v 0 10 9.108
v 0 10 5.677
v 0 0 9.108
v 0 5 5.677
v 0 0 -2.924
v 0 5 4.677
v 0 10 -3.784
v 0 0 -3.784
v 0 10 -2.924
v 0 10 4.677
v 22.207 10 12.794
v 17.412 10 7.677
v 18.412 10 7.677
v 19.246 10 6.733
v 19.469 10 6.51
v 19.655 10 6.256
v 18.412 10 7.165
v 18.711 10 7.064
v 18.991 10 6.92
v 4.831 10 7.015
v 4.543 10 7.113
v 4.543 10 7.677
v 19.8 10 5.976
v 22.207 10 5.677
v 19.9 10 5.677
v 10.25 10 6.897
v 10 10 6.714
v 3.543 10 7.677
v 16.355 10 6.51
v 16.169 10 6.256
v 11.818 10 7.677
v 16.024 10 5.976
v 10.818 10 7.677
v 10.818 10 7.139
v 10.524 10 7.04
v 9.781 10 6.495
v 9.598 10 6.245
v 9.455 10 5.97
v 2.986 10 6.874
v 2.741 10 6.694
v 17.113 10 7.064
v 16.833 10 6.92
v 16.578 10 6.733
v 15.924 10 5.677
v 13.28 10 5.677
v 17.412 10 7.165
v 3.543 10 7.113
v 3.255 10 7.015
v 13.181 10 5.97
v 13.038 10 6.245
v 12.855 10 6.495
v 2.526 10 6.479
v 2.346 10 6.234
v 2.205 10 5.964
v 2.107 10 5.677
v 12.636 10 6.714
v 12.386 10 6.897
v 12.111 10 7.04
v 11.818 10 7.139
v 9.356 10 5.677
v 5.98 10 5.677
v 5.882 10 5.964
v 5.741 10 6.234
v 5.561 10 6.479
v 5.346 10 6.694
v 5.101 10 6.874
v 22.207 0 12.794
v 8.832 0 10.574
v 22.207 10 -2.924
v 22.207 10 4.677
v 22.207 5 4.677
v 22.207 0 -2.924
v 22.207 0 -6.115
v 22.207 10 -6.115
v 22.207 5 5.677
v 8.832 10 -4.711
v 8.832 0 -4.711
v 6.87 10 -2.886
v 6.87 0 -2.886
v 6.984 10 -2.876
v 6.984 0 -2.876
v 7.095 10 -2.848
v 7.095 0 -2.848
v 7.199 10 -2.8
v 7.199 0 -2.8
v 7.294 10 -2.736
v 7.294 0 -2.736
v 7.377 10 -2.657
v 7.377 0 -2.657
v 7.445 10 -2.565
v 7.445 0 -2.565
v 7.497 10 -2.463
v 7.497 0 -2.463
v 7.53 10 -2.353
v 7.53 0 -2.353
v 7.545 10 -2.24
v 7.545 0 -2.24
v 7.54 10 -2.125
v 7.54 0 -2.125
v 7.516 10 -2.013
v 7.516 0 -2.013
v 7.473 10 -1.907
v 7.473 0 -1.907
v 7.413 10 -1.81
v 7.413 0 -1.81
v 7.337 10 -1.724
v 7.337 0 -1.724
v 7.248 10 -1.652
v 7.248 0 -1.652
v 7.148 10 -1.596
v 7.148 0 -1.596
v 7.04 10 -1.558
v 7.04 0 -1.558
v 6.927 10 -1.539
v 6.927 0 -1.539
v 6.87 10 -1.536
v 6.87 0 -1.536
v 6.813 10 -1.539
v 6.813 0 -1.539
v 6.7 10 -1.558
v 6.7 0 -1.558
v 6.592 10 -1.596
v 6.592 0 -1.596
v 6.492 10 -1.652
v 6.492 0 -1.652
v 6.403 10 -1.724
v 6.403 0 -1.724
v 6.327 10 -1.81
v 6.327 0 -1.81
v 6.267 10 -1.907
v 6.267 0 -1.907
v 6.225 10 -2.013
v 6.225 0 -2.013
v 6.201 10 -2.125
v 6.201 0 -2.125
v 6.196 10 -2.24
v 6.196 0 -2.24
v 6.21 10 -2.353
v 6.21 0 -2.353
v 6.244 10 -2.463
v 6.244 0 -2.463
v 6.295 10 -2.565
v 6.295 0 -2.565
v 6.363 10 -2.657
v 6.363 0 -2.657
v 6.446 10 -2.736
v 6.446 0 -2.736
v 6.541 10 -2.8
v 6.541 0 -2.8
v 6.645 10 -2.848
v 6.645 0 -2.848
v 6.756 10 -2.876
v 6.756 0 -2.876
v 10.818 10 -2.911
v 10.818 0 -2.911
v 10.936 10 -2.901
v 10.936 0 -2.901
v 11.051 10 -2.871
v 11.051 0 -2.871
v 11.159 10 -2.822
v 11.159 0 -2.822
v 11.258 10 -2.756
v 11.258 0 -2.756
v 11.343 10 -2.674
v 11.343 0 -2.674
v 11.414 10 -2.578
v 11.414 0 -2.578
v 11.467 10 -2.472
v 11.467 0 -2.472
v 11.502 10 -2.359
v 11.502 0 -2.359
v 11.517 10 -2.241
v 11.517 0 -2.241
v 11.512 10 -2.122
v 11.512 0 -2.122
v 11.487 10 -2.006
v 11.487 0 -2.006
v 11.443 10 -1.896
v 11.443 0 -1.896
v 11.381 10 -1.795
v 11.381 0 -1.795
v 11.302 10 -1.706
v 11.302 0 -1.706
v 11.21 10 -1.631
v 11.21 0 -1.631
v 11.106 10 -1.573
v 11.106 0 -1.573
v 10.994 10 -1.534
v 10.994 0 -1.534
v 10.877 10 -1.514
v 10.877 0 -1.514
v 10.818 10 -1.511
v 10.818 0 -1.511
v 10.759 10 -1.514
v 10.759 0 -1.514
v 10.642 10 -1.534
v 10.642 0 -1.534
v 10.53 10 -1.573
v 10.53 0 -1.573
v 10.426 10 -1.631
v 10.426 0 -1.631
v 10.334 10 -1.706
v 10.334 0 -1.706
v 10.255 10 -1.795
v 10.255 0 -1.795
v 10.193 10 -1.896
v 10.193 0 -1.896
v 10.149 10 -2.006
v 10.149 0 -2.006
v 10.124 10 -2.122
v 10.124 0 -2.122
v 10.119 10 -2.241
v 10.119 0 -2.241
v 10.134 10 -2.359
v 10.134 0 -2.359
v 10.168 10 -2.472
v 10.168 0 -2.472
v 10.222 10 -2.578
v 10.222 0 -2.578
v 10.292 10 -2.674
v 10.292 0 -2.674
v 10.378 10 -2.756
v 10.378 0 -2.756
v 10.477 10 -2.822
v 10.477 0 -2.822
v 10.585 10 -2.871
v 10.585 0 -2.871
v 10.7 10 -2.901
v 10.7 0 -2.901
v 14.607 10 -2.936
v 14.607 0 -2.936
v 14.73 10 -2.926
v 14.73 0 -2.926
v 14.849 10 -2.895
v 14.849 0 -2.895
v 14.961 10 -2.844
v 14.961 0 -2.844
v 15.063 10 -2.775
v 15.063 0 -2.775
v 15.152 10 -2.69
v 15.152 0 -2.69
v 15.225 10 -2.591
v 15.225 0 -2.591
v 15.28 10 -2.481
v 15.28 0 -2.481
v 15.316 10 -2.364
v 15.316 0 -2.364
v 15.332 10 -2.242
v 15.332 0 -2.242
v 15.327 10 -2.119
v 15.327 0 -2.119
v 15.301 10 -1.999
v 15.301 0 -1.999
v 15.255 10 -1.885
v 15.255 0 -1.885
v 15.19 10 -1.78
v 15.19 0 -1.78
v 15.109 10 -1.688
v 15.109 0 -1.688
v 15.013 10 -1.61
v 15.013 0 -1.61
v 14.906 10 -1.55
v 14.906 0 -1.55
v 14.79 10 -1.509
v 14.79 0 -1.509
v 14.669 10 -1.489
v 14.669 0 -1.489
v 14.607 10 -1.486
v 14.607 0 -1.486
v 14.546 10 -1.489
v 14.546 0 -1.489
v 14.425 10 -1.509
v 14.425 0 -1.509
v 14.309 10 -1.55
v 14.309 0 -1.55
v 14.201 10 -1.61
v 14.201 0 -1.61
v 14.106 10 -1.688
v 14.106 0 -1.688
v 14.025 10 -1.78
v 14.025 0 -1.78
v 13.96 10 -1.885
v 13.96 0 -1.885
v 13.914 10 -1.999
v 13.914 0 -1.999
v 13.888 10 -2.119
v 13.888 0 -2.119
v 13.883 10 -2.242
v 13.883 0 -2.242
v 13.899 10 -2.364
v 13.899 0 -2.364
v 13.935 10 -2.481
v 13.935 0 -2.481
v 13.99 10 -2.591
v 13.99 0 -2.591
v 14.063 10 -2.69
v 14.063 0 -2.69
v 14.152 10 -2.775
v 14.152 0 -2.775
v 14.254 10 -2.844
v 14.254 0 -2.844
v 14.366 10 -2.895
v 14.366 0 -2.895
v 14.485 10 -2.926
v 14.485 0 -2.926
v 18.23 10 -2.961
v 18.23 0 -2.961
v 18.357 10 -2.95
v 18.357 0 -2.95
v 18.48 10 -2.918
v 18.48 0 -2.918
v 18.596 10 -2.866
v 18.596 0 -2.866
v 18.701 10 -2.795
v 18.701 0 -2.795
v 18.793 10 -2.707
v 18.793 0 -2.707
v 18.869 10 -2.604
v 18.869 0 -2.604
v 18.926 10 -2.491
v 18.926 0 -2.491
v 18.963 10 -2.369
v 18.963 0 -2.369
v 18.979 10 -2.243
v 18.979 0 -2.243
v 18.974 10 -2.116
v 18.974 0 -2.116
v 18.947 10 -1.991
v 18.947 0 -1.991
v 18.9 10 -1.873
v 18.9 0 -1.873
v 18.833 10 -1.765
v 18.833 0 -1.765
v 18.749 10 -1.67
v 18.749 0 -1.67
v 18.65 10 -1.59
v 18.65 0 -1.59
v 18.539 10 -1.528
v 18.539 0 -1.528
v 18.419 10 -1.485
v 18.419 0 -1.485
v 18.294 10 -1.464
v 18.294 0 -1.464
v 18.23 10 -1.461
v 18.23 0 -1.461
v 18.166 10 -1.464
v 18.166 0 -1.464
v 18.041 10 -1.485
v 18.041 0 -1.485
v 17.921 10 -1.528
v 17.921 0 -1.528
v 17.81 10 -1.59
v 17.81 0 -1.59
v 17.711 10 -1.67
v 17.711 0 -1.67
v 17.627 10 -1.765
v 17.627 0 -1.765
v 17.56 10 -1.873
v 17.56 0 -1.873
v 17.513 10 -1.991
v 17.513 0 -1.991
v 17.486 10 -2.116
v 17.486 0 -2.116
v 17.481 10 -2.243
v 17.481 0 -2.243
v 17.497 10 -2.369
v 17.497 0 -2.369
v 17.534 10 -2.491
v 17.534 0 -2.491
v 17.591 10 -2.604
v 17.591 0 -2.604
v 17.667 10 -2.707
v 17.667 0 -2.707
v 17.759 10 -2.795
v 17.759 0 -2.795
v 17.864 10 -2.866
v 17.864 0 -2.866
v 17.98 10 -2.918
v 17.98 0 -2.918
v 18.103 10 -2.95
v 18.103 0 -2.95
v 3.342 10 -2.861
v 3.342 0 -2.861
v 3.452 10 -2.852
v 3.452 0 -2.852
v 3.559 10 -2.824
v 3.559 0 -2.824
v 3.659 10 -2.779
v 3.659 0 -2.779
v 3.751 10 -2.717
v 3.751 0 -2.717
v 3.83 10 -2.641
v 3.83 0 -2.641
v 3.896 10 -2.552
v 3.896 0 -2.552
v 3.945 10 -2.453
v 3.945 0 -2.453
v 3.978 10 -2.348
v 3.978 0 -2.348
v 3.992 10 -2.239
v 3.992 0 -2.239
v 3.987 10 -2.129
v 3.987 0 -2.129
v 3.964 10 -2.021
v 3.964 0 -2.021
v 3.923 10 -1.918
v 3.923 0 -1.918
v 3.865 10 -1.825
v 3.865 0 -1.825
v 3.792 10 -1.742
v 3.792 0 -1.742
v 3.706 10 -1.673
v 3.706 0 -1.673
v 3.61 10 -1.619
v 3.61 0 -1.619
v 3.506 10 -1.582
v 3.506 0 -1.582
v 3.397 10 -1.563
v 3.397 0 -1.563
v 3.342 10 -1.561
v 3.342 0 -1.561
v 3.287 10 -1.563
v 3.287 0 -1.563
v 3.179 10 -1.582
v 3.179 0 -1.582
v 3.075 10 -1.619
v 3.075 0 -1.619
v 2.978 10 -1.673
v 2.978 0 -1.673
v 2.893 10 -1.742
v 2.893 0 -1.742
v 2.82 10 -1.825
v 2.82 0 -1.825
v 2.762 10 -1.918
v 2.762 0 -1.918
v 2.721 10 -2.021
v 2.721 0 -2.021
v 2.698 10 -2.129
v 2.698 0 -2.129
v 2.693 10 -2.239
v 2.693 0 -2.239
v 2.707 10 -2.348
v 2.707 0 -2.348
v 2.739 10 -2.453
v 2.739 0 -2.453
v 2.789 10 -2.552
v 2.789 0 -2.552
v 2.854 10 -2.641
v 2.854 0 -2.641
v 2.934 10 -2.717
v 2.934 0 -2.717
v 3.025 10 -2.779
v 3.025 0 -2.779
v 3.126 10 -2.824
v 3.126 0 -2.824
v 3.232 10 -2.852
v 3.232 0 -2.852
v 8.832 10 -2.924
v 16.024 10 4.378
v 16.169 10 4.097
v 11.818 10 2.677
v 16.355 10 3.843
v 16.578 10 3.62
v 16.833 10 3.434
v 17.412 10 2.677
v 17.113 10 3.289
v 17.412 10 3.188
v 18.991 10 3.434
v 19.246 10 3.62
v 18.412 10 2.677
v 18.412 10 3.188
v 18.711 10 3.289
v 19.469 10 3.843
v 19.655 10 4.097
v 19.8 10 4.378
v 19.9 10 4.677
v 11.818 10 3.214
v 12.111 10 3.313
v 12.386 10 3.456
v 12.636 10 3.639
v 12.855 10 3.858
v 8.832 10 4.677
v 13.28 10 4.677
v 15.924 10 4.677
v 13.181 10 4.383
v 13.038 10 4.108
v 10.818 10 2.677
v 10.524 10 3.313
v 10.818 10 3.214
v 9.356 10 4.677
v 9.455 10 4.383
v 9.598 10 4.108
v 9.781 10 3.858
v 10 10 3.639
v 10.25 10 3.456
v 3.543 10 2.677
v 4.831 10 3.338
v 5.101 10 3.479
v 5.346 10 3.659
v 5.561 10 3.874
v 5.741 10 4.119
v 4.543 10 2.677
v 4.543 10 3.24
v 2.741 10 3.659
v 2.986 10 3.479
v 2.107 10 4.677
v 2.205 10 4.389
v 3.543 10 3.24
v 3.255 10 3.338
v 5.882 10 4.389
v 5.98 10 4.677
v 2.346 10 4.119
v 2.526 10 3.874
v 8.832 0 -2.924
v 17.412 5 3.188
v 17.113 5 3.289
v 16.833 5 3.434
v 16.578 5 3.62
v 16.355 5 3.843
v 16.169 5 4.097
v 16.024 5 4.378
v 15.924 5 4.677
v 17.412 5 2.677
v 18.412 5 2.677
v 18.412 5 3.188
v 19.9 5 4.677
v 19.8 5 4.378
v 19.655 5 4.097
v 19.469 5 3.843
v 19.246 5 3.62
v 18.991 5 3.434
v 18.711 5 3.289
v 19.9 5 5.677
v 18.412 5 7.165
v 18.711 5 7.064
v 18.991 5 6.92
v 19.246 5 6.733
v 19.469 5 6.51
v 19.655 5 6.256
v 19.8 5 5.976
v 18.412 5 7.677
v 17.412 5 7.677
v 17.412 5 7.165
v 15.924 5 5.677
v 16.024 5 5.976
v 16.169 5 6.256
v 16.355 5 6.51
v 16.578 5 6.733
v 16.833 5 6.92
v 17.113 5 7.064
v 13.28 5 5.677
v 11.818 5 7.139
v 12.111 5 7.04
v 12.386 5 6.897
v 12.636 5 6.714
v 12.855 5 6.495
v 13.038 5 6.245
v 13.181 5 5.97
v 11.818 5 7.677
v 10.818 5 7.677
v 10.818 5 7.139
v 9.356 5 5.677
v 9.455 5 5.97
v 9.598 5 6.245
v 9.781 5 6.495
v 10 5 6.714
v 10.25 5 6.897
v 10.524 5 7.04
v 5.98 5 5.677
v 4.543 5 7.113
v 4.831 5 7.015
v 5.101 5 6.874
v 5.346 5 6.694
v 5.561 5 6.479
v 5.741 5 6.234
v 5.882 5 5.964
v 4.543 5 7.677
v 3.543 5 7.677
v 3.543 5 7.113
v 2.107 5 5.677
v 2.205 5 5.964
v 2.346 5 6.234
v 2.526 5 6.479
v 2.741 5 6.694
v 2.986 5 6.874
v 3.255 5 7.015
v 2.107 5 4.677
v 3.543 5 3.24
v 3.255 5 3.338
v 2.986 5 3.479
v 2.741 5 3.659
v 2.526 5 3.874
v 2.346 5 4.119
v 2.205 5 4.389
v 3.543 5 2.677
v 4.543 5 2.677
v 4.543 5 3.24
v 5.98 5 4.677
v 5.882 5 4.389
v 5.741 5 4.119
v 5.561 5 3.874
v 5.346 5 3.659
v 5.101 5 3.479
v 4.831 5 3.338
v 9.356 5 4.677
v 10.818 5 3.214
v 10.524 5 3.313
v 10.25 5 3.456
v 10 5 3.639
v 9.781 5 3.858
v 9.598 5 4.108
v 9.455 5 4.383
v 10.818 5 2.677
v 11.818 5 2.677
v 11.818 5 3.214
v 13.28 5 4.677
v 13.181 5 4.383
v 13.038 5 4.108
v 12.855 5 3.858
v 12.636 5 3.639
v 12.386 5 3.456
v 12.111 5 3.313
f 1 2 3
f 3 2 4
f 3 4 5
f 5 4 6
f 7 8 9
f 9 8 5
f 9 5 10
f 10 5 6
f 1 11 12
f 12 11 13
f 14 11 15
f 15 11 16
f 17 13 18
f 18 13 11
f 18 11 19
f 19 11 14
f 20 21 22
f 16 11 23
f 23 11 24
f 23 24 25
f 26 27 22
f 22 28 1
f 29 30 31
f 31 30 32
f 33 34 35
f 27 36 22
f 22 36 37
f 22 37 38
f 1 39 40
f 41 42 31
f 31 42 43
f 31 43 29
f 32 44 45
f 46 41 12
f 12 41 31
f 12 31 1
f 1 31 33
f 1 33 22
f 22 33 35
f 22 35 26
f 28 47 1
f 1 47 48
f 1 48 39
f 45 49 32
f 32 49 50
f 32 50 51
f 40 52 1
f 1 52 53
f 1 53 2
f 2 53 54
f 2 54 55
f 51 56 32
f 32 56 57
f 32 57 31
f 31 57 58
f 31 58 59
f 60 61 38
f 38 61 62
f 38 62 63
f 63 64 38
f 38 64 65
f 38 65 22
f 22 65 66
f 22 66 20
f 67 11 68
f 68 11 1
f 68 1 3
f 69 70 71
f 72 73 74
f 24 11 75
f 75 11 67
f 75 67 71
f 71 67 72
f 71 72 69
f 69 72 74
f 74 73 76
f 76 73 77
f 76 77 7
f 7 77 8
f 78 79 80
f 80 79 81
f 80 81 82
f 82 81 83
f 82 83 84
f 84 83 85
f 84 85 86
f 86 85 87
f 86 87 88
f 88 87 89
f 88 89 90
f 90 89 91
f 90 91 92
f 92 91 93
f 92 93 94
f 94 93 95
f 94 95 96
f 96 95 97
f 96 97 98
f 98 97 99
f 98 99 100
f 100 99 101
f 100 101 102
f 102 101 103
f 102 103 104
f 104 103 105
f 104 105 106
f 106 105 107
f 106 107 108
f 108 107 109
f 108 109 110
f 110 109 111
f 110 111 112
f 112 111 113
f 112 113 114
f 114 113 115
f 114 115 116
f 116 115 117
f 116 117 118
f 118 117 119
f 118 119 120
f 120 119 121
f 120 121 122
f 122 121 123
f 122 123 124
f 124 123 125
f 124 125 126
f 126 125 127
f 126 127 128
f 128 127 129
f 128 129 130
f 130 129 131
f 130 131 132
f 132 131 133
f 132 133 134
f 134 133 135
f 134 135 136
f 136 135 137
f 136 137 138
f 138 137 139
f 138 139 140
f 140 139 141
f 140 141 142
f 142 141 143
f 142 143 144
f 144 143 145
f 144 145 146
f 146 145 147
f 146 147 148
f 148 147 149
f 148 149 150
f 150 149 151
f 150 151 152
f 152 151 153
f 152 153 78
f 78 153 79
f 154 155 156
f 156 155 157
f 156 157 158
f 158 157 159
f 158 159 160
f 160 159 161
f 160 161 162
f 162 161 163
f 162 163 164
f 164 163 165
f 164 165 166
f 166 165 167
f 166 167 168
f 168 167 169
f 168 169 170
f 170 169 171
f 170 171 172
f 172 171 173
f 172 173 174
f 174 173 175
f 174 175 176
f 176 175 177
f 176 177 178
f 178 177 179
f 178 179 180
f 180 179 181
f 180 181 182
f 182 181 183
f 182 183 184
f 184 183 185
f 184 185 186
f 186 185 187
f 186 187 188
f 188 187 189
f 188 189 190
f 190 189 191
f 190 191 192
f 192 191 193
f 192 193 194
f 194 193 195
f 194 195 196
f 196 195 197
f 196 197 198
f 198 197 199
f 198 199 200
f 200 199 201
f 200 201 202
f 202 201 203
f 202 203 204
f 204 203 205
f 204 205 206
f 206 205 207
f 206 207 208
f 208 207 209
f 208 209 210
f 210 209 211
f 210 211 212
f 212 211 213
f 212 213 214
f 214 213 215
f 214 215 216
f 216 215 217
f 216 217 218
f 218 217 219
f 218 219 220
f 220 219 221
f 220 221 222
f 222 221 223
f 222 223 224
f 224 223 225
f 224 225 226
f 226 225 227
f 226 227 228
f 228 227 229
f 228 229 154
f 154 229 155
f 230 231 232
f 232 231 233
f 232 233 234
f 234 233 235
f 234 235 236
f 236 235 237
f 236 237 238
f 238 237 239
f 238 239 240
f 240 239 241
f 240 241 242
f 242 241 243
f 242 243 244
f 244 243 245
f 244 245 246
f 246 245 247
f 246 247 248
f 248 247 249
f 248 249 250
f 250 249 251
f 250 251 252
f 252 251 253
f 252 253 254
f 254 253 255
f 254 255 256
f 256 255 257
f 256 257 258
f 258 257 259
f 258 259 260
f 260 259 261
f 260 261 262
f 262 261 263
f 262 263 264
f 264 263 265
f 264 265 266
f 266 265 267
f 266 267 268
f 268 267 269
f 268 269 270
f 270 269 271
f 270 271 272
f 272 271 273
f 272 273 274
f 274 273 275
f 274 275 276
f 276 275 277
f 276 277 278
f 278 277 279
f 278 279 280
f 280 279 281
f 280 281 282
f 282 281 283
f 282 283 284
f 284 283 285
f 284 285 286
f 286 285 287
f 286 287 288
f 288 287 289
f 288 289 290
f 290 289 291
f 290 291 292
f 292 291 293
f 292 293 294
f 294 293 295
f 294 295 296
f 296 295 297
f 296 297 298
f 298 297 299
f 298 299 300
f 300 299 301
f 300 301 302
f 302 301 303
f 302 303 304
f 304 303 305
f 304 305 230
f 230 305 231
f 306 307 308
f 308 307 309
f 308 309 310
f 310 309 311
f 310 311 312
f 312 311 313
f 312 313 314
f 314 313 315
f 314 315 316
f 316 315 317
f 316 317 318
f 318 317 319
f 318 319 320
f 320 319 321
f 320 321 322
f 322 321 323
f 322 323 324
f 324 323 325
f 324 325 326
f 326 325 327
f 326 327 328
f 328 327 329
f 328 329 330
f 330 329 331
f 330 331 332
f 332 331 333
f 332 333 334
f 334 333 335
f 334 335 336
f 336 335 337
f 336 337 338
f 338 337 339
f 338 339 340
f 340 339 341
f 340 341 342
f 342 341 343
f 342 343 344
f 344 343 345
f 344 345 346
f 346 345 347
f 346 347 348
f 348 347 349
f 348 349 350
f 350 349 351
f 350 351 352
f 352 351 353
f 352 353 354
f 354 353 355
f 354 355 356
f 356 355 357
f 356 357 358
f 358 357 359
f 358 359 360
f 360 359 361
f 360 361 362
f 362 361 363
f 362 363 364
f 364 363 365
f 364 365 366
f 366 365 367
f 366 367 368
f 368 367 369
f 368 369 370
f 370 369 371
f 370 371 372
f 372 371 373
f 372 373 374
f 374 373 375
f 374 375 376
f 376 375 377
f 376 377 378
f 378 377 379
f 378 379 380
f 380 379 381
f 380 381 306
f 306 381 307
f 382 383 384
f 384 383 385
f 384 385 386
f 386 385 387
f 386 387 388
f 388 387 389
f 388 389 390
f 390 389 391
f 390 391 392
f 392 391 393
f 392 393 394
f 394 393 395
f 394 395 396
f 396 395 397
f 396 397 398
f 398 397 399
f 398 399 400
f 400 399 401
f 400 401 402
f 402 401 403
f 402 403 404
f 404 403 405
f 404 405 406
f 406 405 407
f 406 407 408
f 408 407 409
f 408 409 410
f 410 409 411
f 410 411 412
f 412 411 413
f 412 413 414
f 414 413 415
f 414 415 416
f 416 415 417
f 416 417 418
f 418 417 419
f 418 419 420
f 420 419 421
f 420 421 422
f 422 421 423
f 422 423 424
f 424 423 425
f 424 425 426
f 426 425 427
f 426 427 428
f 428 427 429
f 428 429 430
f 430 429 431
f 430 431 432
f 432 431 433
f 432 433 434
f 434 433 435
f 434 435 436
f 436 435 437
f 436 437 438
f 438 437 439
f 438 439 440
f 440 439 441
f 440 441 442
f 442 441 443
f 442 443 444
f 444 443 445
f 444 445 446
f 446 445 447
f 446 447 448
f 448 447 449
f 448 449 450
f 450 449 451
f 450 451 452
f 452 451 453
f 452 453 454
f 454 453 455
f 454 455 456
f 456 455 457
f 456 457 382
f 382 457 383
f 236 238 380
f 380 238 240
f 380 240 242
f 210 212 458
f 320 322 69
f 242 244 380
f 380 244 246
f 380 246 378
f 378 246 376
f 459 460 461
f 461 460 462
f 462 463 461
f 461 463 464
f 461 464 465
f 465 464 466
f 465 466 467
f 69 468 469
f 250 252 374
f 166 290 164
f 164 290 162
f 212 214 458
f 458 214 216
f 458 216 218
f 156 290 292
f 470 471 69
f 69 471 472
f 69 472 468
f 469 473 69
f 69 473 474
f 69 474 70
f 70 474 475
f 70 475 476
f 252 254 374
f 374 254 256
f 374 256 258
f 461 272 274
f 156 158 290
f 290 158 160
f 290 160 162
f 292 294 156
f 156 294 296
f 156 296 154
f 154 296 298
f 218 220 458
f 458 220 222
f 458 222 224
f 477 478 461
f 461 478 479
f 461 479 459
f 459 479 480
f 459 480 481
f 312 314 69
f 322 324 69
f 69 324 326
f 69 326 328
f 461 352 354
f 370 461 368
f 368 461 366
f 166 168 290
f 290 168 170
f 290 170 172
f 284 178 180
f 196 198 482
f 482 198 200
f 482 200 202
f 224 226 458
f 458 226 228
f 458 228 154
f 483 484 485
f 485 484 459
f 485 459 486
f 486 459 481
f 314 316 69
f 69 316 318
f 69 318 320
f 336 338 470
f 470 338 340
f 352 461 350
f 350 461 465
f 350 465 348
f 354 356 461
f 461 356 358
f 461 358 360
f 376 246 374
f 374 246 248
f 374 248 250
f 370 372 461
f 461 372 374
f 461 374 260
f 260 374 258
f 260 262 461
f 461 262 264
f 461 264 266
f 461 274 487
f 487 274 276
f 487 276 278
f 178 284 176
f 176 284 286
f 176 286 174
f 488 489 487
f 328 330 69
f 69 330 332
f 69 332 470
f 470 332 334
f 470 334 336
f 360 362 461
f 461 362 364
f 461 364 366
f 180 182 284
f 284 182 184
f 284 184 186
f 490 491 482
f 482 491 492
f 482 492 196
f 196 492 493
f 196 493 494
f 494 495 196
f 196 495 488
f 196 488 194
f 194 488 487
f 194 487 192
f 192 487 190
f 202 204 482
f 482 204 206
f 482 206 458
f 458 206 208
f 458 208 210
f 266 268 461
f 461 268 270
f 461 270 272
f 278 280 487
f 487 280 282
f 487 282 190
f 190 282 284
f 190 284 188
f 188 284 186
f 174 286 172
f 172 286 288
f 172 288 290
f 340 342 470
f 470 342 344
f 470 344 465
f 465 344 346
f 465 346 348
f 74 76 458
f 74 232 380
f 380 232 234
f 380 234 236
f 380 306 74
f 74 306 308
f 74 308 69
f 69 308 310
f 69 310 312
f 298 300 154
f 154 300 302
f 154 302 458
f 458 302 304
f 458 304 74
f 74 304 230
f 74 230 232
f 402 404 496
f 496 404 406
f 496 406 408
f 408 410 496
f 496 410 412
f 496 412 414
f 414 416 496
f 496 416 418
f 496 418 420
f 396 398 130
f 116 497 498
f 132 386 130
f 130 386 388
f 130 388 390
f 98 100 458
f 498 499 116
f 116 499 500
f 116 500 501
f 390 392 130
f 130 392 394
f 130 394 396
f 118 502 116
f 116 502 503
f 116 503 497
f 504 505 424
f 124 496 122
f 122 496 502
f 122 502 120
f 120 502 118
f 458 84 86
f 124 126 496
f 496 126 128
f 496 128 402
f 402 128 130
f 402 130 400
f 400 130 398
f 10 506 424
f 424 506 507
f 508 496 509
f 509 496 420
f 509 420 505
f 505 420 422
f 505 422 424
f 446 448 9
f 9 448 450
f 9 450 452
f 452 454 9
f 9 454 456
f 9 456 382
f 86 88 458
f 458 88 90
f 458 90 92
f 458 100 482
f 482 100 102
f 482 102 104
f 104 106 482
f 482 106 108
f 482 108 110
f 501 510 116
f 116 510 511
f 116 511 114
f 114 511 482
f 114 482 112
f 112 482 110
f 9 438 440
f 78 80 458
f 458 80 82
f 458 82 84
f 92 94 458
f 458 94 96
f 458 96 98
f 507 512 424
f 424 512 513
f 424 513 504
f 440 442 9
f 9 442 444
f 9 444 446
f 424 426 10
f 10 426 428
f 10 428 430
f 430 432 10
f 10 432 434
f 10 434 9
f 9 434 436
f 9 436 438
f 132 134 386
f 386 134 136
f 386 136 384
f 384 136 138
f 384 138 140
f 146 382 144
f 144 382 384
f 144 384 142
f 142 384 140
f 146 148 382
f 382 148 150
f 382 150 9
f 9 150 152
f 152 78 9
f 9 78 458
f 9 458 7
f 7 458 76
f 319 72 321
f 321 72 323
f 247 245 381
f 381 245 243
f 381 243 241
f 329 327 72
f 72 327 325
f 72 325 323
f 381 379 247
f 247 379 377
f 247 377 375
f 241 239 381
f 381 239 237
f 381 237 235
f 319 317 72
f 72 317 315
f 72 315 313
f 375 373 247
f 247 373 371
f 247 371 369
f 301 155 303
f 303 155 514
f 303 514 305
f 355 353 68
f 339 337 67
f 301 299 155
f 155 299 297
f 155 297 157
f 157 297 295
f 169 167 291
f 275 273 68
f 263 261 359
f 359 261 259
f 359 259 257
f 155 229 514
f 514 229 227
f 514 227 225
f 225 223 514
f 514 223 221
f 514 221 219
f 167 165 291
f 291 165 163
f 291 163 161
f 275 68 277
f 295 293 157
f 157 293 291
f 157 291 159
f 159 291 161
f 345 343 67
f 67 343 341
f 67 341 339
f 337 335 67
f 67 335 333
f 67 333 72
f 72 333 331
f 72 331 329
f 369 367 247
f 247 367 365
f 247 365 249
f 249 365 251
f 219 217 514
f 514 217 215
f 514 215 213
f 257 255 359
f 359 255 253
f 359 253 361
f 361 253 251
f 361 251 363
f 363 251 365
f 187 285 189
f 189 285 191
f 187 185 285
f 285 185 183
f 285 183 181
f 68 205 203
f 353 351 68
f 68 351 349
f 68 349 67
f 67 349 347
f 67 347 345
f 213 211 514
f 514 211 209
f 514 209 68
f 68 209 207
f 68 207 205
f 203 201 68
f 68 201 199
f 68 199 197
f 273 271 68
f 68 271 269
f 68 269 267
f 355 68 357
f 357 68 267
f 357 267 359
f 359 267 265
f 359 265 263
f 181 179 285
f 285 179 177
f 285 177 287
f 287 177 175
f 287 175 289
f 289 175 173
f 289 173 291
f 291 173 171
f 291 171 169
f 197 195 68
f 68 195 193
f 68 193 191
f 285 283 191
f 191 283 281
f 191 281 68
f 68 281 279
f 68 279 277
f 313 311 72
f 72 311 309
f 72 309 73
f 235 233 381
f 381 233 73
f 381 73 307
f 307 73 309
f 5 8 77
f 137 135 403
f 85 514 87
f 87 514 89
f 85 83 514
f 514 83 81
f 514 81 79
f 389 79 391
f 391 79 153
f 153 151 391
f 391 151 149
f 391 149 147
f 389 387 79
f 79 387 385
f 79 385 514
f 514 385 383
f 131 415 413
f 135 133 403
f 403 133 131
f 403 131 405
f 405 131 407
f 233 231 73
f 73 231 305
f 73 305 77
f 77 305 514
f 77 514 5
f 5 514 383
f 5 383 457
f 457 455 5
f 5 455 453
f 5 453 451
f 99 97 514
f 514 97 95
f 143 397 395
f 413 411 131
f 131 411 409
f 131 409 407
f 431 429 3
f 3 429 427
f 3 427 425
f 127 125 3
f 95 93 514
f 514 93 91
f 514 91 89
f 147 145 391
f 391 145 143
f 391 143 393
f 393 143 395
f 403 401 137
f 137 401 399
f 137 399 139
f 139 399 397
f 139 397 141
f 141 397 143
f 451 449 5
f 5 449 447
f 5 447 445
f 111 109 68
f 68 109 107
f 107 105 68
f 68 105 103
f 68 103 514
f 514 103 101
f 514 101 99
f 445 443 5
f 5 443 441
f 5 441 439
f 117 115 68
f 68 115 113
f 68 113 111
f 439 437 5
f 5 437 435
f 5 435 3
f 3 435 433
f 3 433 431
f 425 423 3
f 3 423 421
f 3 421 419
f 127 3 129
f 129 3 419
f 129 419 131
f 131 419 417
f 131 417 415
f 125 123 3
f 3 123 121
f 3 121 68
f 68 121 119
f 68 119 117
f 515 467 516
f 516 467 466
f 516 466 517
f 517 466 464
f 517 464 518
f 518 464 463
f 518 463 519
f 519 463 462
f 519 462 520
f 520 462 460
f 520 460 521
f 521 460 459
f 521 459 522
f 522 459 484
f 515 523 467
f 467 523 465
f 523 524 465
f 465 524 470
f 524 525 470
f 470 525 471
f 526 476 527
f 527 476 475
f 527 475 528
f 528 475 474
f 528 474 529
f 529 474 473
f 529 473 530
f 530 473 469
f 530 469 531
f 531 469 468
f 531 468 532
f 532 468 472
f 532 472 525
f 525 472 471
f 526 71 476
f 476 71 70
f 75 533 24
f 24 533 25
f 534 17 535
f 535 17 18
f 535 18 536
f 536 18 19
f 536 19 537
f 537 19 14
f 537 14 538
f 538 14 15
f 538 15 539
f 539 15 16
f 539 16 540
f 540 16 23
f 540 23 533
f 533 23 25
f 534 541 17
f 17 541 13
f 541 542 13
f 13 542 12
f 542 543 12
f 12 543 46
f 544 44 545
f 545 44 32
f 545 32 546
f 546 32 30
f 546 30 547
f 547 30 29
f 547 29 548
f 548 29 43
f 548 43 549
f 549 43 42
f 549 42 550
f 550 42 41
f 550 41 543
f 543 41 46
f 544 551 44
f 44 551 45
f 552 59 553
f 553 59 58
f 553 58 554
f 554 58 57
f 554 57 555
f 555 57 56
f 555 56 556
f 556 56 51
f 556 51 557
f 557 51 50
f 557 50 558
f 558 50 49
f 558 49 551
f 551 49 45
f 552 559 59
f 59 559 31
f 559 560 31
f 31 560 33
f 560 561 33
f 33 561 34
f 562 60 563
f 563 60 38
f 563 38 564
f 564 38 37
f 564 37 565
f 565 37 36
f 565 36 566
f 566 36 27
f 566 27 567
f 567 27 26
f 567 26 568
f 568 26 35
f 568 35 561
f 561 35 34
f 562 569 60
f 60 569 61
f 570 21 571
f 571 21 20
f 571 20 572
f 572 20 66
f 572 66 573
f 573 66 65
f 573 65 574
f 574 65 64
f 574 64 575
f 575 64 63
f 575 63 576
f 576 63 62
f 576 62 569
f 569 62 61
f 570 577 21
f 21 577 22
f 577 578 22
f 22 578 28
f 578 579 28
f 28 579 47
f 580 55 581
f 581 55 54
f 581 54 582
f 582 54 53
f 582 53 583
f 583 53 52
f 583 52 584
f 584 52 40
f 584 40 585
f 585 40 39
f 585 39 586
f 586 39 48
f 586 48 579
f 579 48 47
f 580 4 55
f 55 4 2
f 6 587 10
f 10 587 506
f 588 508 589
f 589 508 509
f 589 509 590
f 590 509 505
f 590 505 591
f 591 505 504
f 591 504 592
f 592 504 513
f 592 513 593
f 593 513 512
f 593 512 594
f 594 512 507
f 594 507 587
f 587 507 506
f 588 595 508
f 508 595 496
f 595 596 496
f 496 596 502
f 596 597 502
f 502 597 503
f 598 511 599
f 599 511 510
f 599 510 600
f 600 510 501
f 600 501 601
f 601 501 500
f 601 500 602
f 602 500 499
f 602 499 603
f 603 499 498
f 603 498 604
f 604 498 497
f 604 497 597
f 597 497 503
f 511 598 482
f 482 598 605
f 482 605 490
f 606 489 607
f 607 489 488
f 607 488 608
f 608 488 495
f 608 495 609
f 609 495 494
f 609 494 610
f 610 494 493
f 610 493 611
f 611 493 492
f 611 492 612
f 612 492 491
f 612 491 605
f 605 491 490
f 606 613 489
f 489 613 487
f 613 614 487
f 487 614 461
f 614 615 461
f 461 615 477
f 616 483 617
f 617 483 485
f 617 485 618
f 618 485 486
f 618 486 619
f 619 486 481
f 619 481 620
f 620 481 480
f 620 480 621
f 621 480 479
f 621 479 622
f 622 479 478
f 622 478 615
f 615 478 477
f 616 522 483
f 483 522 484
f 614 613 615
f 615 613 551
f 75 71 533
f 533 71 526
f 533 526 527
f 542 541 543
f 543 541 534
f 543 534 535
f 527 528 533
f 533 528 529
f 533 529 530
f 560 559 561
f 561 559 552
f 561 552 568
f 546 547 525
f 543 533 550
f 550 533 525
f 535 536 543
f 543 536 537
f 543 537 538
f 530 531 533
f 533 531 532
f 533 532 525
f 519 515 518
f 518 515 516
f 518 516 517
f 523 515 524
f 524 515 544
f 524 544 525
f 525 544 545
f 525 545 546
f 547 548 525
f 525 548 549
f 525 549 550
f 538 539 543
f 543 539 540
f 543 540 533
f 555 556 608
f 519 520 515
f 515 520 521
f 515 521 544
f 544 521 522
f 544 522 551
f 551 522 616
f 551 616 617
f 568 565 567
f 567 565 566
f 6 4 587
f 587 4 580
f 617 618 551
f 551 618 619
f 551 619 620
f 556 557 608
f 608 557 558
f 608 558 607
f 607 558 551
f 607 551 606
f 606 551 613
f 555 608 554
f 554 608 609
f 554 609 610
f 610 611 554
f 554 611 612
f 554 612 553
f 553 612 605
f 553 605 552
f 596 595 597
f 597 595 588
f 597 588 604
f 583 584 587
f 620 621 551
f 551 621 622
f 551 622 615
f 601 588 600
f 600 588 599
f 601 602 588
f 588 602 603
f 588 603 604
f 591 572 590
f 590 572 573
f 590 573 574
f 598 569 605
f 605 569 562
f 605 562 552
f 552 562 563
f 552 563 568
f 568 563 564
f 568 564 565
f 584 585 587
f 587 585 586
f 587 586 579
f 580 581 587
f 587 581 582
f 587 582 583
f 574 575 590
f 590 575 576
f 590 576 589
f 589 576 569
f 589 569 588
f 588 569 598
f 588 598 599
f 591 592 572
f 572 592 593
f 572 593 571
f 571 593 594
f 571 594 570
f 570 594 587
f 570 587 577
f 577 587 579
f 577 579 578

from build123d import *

# Parameters (mm, degrees)
SKETCH1_R           = 0.65
SKETCH1_R_2         = 0.675
SKETCH1_R_3         = 0.7
SKETCH1_R_4         = 0.725
SKETCH1_R_5         = 0.75
SKETCH1_W           = 1
SKETCH1_H           = 1
BOSS_EXTRUDE1_DEPTH = 10
CUT_EXTRUDE1_START  = 10
SKETCH1_4_W         = 1
SKETCH1_4_H         = 1
CUT_EXTRUDE1_DEPTH  = 5


with BuildPart() as part:
    # Sketch1 → Boss-Extrude1 (new body)
    with BuildSketch(Plane(origin=(0, 0, 0), x_dir=(1, 0, 0), z_dir=(0, 1, 0))):
        with BuildLine():
            Line((22.206609956, -4.676577902), (22.206609956, -1.693083106))
            Line((22.206609956, -1.693083106), (22.206609956, 6.115263516))
            Line((22.206609956, 6.115263516), (0, 3.783645885))
            Line((0, 3.783645885), (0, 1.993800458))
            Line((0, 1.993800458), (0, -4.676577902))
            Line((0, -4.676577902), (2.106823129, -4.676577902))
            ThreePointArc((2.106823129, -4.676577902), (2.62910124, -3.762364339), (3.543314802, -3.240086229))
            Line((3.543314802, -3.240086229), (3.543314802, -2.676577902))
            Line((3.543314802, -2.676577902), (4.543314802, -2.676577902))
            Line((4.543314802, -2.676577902), (4.543314802, -3.240086229))
            ThreePointArc((4.543314802, -3.240086229), (5.457528364, -3.762364339), (5.979806475, -4.676577902))
            Line((5.979806475, -4.676577902), (9.355611155, -4.676577902))
            ThreePointArc((9.355611155, -4.676577902), (9.886020869, -3.74468667), (10.8179121, -3.214276957))
            Line((10.8179121, -3.214276957), (10.8179121, -2.676577902))
            Line((10.8179121, -2.676577902), (11.8179121, -2.676577902))
            Line((11.8179121, -2.676577902), (11.8179121, -3.214276957))
            ThreePointArc((11.8179121, -3.214276957), (12.749803332, -3.74468667), (13.280213046, -4.676577902))
            Line((13.280213046, -4.676577902), (15.924027608, -4.676577902))
            ThreePointArc((15.924027608, -4.676577902), (16.462548242, -3.727009), (17.412117144, -3.188488367))
            Line((17.412117144, -3.188488367), (17.412117144, -2.676577902))
            Line((17.412117144, -2.676577902), (18.412117144, -2.676577902))
            Line((18.412117144, -2.676577902), (18.412117144, -3.188488367))
            ThreePointArc((18.412117144, -3.188488367), (19.361686045, -3.727009), (19.900206679, -4.676577902))
            Line((19.900206679, -4.676577902), (22.206609956, -4.676577902))
        make_face()
        with Locations((3.342327151, 2.211090205)):
            Circle(SKETCH1_R, mode=Mode.SUBTRACT)
        with Locations((6.870185956, 2.211090205)):
            Circle(SKETCH1_R_2, mode=Mode.SUBTRACT)
        with Locations((10.8179121, 2.211090205)):
            Circle(SKETCH1_R_3, mode=Mode.SUBTRACT)
        with Locations((14.607435977, 2.211090205)):
            Circle(SKETCH1_R_4, mode=Mode.SUBTRACT)
        with Locations((18.23001071, 2.211090205)):
            Circle(SKETCH1_R_5, mode=Mode.SUBTRACT)
        with BuildLine():
            Line((22.206609956, -12.794492927), (22.206609956, -5.676577902))
            Line((22.206609956, -5.676577902), (19.900206679, -5.676577902))
            ThreePointArc((19.900206679, -5.676577902), (19.361686045, -6.626146803), (18.412117144, -7.164667437))
            Line((18.412117144, -7.164667437), (18.412117144, -7.676577902))
            Line((18.412117144, -7.676577902), (17.412117144, -7.676577902))
            Line((17.412117144, -7.676577902), (17.412117144, -7.164667437))
            ThreePointArc((17.412117144, -7.164667437), (16.462548242, -6.626146803), (15.924027608, -5.676577902))
            Line((15.924027608, -5.676577902), (13.280213046, -5.676577902))
            ThreePointArc((13.280213046, -5.676577902), (12.749803332, -6.608469134), (11.8179121, -7.138878847))
            Line((11.8179121, -7.138878847), (11.8179121, -7.676577902))
            Line((11.8179121, -7.676577902), (10.8179121, -7.676577902))
            Line((10.8179121, -7.676577902), (10.8179121, -7.138878847))
            ThreePointArc((10.8179121, -7.138878847), (9.886020869, -6.608469134), (9.355611155, -5.676577902))
            Line((9.355611155, -5.676577902), (5.979806475, -5.676577902))
            ThreePointArc((5.979806475, -5.676577902), (5.457528364, -6.590791464), (4.543314802, -7.113069575))
            Line((4.543314802, -7.113069575), (4.543314802, -7.676577902))
            Line((4.543314802, -7.676577902), (3.543314802, -7.676577902))
            Line((3.543314802, -7.676577902), (3.543314802, -7.113069575))
            ThreePointArc((3.543314802, -7.113069575), (2.62910124, -6.590791464), (2.106823129, -5.676577902))
            Line((2.106823129, -5.676577902), (0, -5.676577902))
            Line((0, -5.676577902), (0, -9.107609363))
            Line((0, -9.107609363), (22.206609956, -12.794492927))
        make_face()
        with BuildLine():
            Line((22.206609956, -5.676577902), (22.206609956, -4.676577902))
            Line((22.206609956, -4.676577902), (19.900206679, -4.676577902))
            ThreePointArc((19.900206679, -4.676577902), (19.946580654, -4.924668739), (19.962117144, -5.176577902))
            ThreePointArc((19.962117144, -5.176577902), (19.946580654, -5.428487065), (19.900206679, -5.676577902))
            Line((19.900206679, -5.676577902), (22.206609956, -5.676577902))
        make_face()
        with BuildLine():
            ThreePointArc((19.962117144, -5.176577902), (19.946580654, -4.924668739), (19.900206679, -4.676577902))
            Line((19.900206679, -4.676577902), (18.412117144, -4.676577902))
            Line((18.412117144, -4.676577902), (18.412117144, -5.676577902))
            Line((18.412117144, -5.676577902), (19.900206679, -5.676577902))
            ThreePointArc((19.900206679, -5.676577902), (19.946580654, -5.428487065), (19.962117144, -5.176577902))
        make_face()
        with BuildLine():
            Line((18.412117144, -4.676577902), (19.900206679, -4.676577902))
            ThreePointArc((19.900206679, -4.676577902), (19.361686045, -3.727009), (18.412117144, -3.188488367))
            Line((18.412117144, -3.188488367), (18.412117144, -4.676577902))
        make_face()
        with BuildLine():
            ThreePointArc((17.412117144, -3.188488367), (17.912117144, -3.126577902), (18.412117144, -3.188488367))
            Line((18.412117144, -3.188488367), (18.412117144, -2.676577902))
            Line((18.412117144, -2.676577902), (17.412117144, -2.676577902))
            Line((17.412117144, -2.676577902), (17.412117144, -3.188488367))
        make_face()
        with BuildLine():
            Line((17.412117144, -4.676577902), (18.412117144, -4.676577902))
            Line((18.412117144, -4.676577902), (18.412117144, -3.188488367))
            ThreePointArc((18.412117144, -3.188488367), (17.912117144, -3.126577902), (17.412117144, -3.188488367))
            Line((17.412117144, -3.188488367), (17.412117144, -4.676577902))
        make_face()
        with BuildLine():
            ThreePointArc((18.412117144, -7.164667437), (19.361686045, -6.626146803), (19.900206679, -5.676577902))
            Line((19.900206679, -5.676577902), (18.412117144, -5.676577902))
            Line((18.412117144, -5.676577902), (18.412117144, -7.164667437))
        make_face()
        with BuildLine():
            Line((18.412117144, -7.164667437), (18.412117144, -5.676577902))
            Line((18.412117144, -5.676577902), (17.412117144, -5.676577902))
            Line((17.412117144, -5.676577902), (17.412117144, -7.164667437))
            ThreePointArc((17.412117144, -7.164667437), (17.912117144, -7.226577902), (18.412117144, -7.164667437))
        make_face()
        with BuildLine():
            Line((18.412117144, -7.676577902), (18.412117144, -7.164667437))
            ThreePointArc((18.412117144, -7.164667437), (17.912117144, -7.226577902), (17.412117144, -7.164667437))
            Line((17.412117144, -7.164667437), (17.412117144, -7.676577902))
            Line((17.412117144, -7.676577902), (18.412117144, -7.676577902))
        make_face()
        with Locations((17.912117144, -5.176577902)):
            Rectangle(SKETCH1_W, SKETCH1_H)
        with BuildLine():
            Line((17.412117144, -5.676577902), (17.412117144, -4.676577902))
            Line((17.412117144, -4.676577902), (15.924027608, -4.676577902))
            ThreePointArc((15.924027608, -4.676577902), (15.862117144, -5.176577902), (15.924027608, -5.676577902))
            Line((15.924027608, -5.676577902), (17.412117144, -5.676577902))
        make_face()
        with BuildLine():
            Line((15.924027608, -4.676577902), (17.412117144, -4.676577902))
            Line((17.412117144, -4.676577902), (17.412117144, -3.188488367))
            ThreePointArc((17.412117144, -3.188488367), (16.462548242, -3.727009), (15.924027608, -4.676577902))
        make_face()
        with BuildLine():
            Line((17.412117144, -7.164667437), (17.412117144, -5.676577902))
            Line((17.412117144, -5.676577902), (15.924027608, -5.676577902))
            ThreePointArc((15.924027608, -5.676577902), (16.462548242, -6.626146803), (17.412117144, -7.164667437))
        make_face()
        with BuildLine():
            ThreePointArc((15.924027608, -5.676577902), (15.862117144, -5.176577902), (15.924027608, -4.676577902))
            Line((15.924027608, -4.676577902), (13.280213046, -4.676577902))
            ThreePointArc((13.280213046, -4.676577902), (13.327176196, -4.924619983), (13.3429121, -5.176577902))
            ThreePointArc((13.3429121, -5.176577902), (13.327176196, -5.428535821), (13.280213046, -5.676577902))
            Line((13.280213046, -5.676577902), (15.924027608, -5.676577902))
        make_face()
        with BuildLine():
            Line((11.8179121, -4.676577902), (13.280213046, -4.676577902))
            ThreePointArc((13.280213046, -4.676577902), (12.749803332, -3.74468667), (11.8179121, -3.214276957))
            Line((11.8179121, -3.214276957), (11.8179121, -4.676577902))
        make_face()
        with BuildLine():
            ThreePointArc((10.8179121, -3.214276957), (11.3179121, -3.151577902), (11.8179121, -3.214276957))
            Line((11.8179121, -3.214276957), (11.8179121, -2.676577902))
            Line((11.8179121, -2.676577902), (10.8179121, -2.676577902))
            Line((10.8179121, -2.676577902), (10.8179121, -3.214276957))
        make_face()
        with BuildLine():
            Line((10.8179121, -4.676577902), (11.8179121, -4.676577902))
            Line((11.8179121, -4.676577902), (11.8179121, -3.214276957))
            ThreePointArc((11.8179121, -3.214276957), (11.3179121, -3.151577902), (10.8179121, -3.214276957))
            Line((10.8179121, -3.214276957), (10.8179121, -4.676577902))
        make_face()
        with BuildLine():
            ThreePointArc((13.3429121, -5.176577902), (13.327176196, -4.924619983), (13.280213046, -4.676577902))
            Line((13.280213046, -4.676577902), (11.8179121, -4.676577902))
            Line((11.8179121, -4.676577902), (11.8179121, -5.676577902))
            Line((11.8179121, -5.676577902), (13.280213046, -5.676577902))
            ThreePointArc((13.280213046, -5.676577902), (13.327176196, -5.428535821), (13.3429121, -5.176577902))
        make_face()
        with BuildLine():
            ThreePointArc((11.8179121, -7.138878847), (12.749803332, -6.608469134), (13.280213046, -5.676577902))
            Line((13.280213046, -5.676577902), (11.8179121, -5.676577902))
            Line((11.8179121, -5.676577902), (11.8179121, -7.138878847))
        make_face()
        with BuildLine():
            Line((11.8179121, -7.138878847), (11.8179121, -5.676577902))
            Line((11.8179121, -5.676577902), (10.8179121, -5.676577902))
            Line((10.8179121, -5.676577902), (10.8179121, -7.138878847))
            ThreePointArc((10.8179121, -7.138878847), (11.3179121, -7.201577902), (11.8179121, -7.138878847))
        make_face()
        with BuildLine():
            Line((11.8179121, -7.676577902), (11.8179121, -7.138878847))
            ThreePointArc((11.8179121, -7.138878847), (11.3179121, -7.201577902), (10.8179121, -7.138878847))
            Line((10.8179121, -7.138878847), (10.8179121, -7.676577902))
            Line((10.8179121, -7.676577902), (11.8179121, -7.676577902))
        make_face()
        with Locations((11.3179121, -5.176577902)):
            Rectangle(SKETCH1_W, SKETCH1_H)
        with BuildLine():
            Line((10.8179121, -5.676577902), (10.8179121, -4.676577902))
            Line((10.8179121, -4.676577902), (9.355611155, -4.676577902))
            ThreePointArc((9.355611155, -4.676577902), (9.2929121, -5.176577902), (9.355611155, -5.676577902))
            Line((9.355611155, -5.676577902), (10.8179121, -5.676577902))
        make_face()
        with BuildLine():
            Line((9.355611155, -4.676577902), (10.8179121, -4.676577902))
            Line((10.8179121, -4.676577902), (10.8179121, -3.214276957))
            ThreePointArc((10.8179121, -3.214276957), (9.886020869, -3.74468667), (9.355611155, -4.676577902))
        make_face()
        with BuildLine():
            Line((10.8179121, -7.138878847), (10.8179121, -5.676577902))
            Line((10.8179121, -5.676577902), (9.355611155, -5.676577902))
            ThreePointArc((9.355611155, -5.676577902), (9.886020869, -6.608469134), (10.8179121, -7.138878847))
        make_face()
        with BuildLine():
            Line((9.355611155, -4.676577902), (5.979806475, -4.676577902))
            ThreePointArc((5.979806475, -4.676577902), (6.027374194, -4.924569317), (6.043314802, -5.176577902))
            ThreePointArc((6.043314802, -5.176577902), (6.027374194, -5.428586487), (5.979806475, -5.676577902))
            Line((5.979806475, -5.676577902), (9.355611155, -5.676577902))
            ThreePointArc((9.355611155, -5.676577902), (9.2929121, -5.176577902), (9.355611155, -4.676577902))
        make_face()
        with BuildLine():
            Line((4.543314802, -3.240086229), (4.543314802, -4.676577902))
            Line((4.543314802, -4.676577902), (5.979806475, -4.676577902))
            ThreePointArc((5.979806475, -4.676577902), (5.457528364, -3.762364339), (4.543314802, -3.240086229))
        make_face()
        with BuildLine():
            Line((5.979806475, -4.676577902), (4.543314802, -4.676577902))
            Line((4.543314802, -4.676577902), (4.543314802, -5.676577902))
            Line((4.543314802, -5.676577902), (5.979806475, -5.676577902))
            ThreePointArc((5.979806475, -5.676577902), (6.027374194, -5.428586487), (6.043314802, -5.176577902))
            ThreePointArc((6.043314802, -5.176577902), (6.027374194, -4.924569317), (5.979806475, -4.676577902))
        make_face()
        with BuildLine():
            Line((5.979806475, -5.676577902), (4.543314802, -5.676577902))
            Line((4.543314802, -5.676577902), (4.543314802, -7.113069575))
            ThreePointArc((4.543314802, -7.113069575), (5.457528364, -6.590791464), (5.979806475, -5.676577902))
        make_face()
        with BuildLine():
            Line((4.543314802, -5.676577902), (3.543314802, -5.676577902))
            Line((3.543314802, -5.676577902), (3.543314802, -7.113069575))
            ThreePointArc((3.543314802, -7.113069575), (4.043314802, -7.176577902), (4.543314802, -7.113069575))
            Line((4.543314802, -7.113069575), (4.543314802, -5.676577902))
        make_face()
        with BuildLine():
            ThreePointArc((4.543314802, -7.113069575), (4.043314802, -7.176577902), (3.543314802, -7.113069575))
            Line((3.543314802, -7.113069575), (3.543314802, -7.676577902))
            Line((3.543314802, -7.676577902), (4.543314802, -7.676577902))
            Line((4.543314802, -7.676577902), (4.543314802, -7.113069575))
        make_face()
        with BuildLine():
            Line((3.543314802, -5.676577902), (2.106823129, -5.676577902))
            ThreePointArc((2.106823129, -5.676577902), (2.62910124, -6.590791464), (3.543314802, -7.113069575))
            Line((3.543314802, -7.113069575), (3.543314802, -5.676577902))
        make_face()
        with BuildLine():
            Line((3.543314802, -4.676577902), (2.106823129, -4.676577902))
            ThreePointArc((2.106823129, -4.676577902), (2.043314802, -5.176577902), (2.106823129, -5.676577902))
            Line((2.106823129, -5.676577902), (3.543314802, -5.676577902))
            Line((3.543314802, -5.676577902), (3.543314802, -4.676577902))
        make_face()
        with Locations((4.043314802, -5.176577902)):
            Rectangle(SKETCH1_W, SKETCH1_H)
        with BuildLine():
            Line((3.543314802, -3.240086229), (3.543314802, -4.676577902))
            Line((3.543314802, -4.676577902), (4.543314802, -4.676577902))
            Line((4.543314802, -4.676577902), (4.543314802, -3.240086229))
            ThreePointArc((4.543314802, -3.240086229), (4.043314802, -3.176577902), (3.543314802, -3.240086229))
        make_face()
        with BuildLine():
            Line((3.543314802, -2.676577902), (3.543314802, -3.240086229))
            ThreePointArc((3.543314802, -3.240086229), (4.043314802, -3.176577902), (4.543314802, -3.240086229))
            Line((4.543314802, -3.240086229), (4.543314802, -2.676577902))
            Line((4.543314802, -2.676577902), (3.543314802, -2.676577902))
        make_face()
        with BuildLine():
            ThreePointArc((3.543314802, -3.240086229), (2.62910124, -3.762364339), (2.106823129, -4.676577902))
            Line((2.106823129, -4.676577902), (3.543314802, -4.676577902))
            Line((3.543314802, -4.676577902), (3.543314802, -3.240086229))
        make_face()
        with BuildLine():
            Line((2.106823129, -4.676577902), (0, -4.676577902))
            Line((0, -4.676577902), (0, -5.676577902))
            Line((0, -5.676577902), (2.106823129, -5.676577902))
            ThreePointArc((2.106823129, -5.676577902), (2.043314802, -5.176577902), (2.106823129, -4.676577902))
        make_face()
    extrude(amount=BOSS_EXTRUDE1_DEPTH)

    # Sketch1<4> → Cut-Extrude1 (cut)
    with BuildSketch(Plane(origin=(0, 0, 0), x_dir=(1, 0, 0), z_dir=(0, 1, 0)).offset(CUT_EXTRUDE1_START)):
        with BuildLine():
            Line((22.206609956, -5.676577902), (22.206609956, -4.676577902))
            Line((22.206609956, -4.676577902), (19.900206679, -4.676577902))
            ThreePointArc((19.900206679, -4.676577902), (19.946580654, -4.924668739), (19.962117144, -5.176577902))
            ThreePointArc((19.962117144, -5.176577902), (19.946580654, -5.428487065), (19.900206679, -5.676577902))
            Line((19.900206679, -5.676577902), (22.206609956, -5.676577902))
        make_face()
        with BuildLine():
            ThreePointArc((19.962117144, -5.176577902), (19.946580654, -4.924668739), (19.900206679, -4.676577902))
            Line((19.900206679, -4.676577902), (18.412117144, -4.676577902))
            Line((18.412117144, -4.676577902), (18.412117144, -5.676577902))
            Line((18.412117144, -5.676577902), (19.900206679, -5.676577902))
            ThreePointArc((19.900206679, -5.676577902), (19.946580654, -5.428487065), (19.962117144, -5.176577902))
        make_face()
        with BuildLine():
            Line((18.412117144, -4.676577902), (19.900206679, -4.676577902))
            ThreePointArc((19.900206679, -4.676577902), (19.361686045, -3.727009), (18.412117144, -3.188488367))
            Line((18.412117144, -3.188488367), (18.412117144, -4.676577902))
        make_face()
        with BuildLine():
            ThreePointArc((18.412117144, -7.164667437), (19.361686045, -6.626146803), (19.900206679, -5.676577902))
            Line((19.900206679, -5.676577902), (18.412117144, -5.676577902))
            Line((18.412117144, -5.676577902), (18.412117144, -7.164667437))
        make_face()
        with BuildLine():
            Line((18.412117144, -7.676577902), (18.412117144, -7.164667437))
            ThreePointArc((18.412117144, -7.164667437), (17.912117144, -7.226577902), (17.412117144, -7.164667437))
            Line((17.412117144, -7.164667437), (17.412117144, -7.676577902))
            Line((17.412117144, -7.676577902), (18.412117144, -7.676577902))
        make_face()
        with BuildLine():
            Line((18.412117144, -7.164667437), (18.412117144, -5.676577902))
            Line((18.412117144, -5.676577902), (17.412117144, -5.676577902))
            Line((17.412117144, -5.676577902), (17.412117144, -7.164667437))
            ThreePointArc((17.412117144, -7.164667437), (17.912117144, -7.226577902), (18.412117144, -7.164667437))
        make_face()
        with Locations((17.912117144, -5.176577902)):
            Rectangle(SKETCH1_4_W, SKETCH1_4_H)
        with BuildLine():
            Line((17.412117144, -4.676577902), (18.412117144, -4.676577902))
            Line((18.412117144, -4.676577902), (18.412117144, -3.188488367))
            ThreePointArc((18.412117144, -3.188488367), (17.912117144, -3.126577902), (17.412117144, -3.188488367))
            Line((17.412117144, -3.188488367), (17.412117144, -4.676577902))
        make_face()
        with BuildLine():
            ThreePointArc((17.412117144, -3.188488367), (17.912117144, -3.126577902), (18.412117144, -3.188488367))
            Line((18.412117144, -3.188488367), (18.412117144, -2.676577902))
            Line((18.412117144, -2.676577902), (17.412117144, -2.676577902))
            Line((17.412117144, -2.676577902), (17.412117144, -3.188488367))
        make_face()
        with BuildLine():
            Line((15.924027608, -4.676577902), (17.412117144, -4.676577902))
            Line((17.412117144, -4.676577902), (17.412117144, -3.188488367))
            ThreePointArc((17.412117144, -3.188488367), (16.462548242, -3.727009), (15.924027608, -4.676577902))
        make_face()
        with BuildLine():
            Line((17.412117144, -5.676577902), (17.412117144, -4.676577902))
            Line((17.412117144, -4.676577902), (15.924027608, -4.676577902))
            ThreePointArc((15.924027608, -4.676577902), (15.862117144, -5.176577902), (15.924027608, -5.676577902))
            Line((15.924027608, -5.676577902), (17.412117144, -5.676577902))
        make_face()
        with BuildLine():
            Line((17.412117144, -7.164667437), (17.412117144, -5.676577902))
            Line((17.412117144, -5.676577902), (15.924027608, -5.676577902))
            ThreePointArc((15.924027608, -5.676577902), (16.462548242, -6.626146803), (17.412117144, -7.164667437))
        make_face()
        with BuildLine():
            ThreePointArc((15.924027608, -5.676577902), (15.862117144, -5.176577902), (15.924027608, -4.676577902))
            Line((15.924027608, -4.676577902), (13.280213046, -4.676577902))
            ThreePointArc((13.280213046, -4.676577902), (13.327176196, -4.924619983), (13.3429121, -5.176577902))
            ThreePointArc((13.3429121, -5.176577902), (13.327176196, -5.428535821), (13.280213046, -5.676577902))
            Line((13.280213046, -5.676577902), (15.924027608, -5.676577902))
        make_face()
        with BuildLine():
            ThreePointArc((13.3429121, -5.176577902), (13.327176196, -4.924619983), (13.280213046, -4.676577902))
            Line((13.280213046, -4.676577902), (11.8179121, -4.676577902))
            Line((11.8179121, -4.676577902), (11.8179121, -5.676577902))
            Line((11.8179121, -5.676577902), (13.280213046, -5.676577902))
            ThreePointArc((13.280213046, -5.676577902), (13.327176196, -5.428535821), (13.3429121, -5.176577902))
        make_face()
        with BuildLine():
            ThreePointArc((11.8179121, -7.138878847), (12.749803332, -6.608469134), (13.280213046, -5.676577902))
            Line((13.280213046, -5.676577902), (11.8179121, -5.676577902))
            Line((11.8179121, -5.676577902), (11.8179121, -7.138878847))
        make_face()
        with BuildLine():
            Line((11.8179121, -7.676577902), (11.8179121, -7.138878847))
            ThreePointArc((11.8179121, -7.138878847), (11.3179121, -7.201577902), (10.8179121, -7.138878847))
            Line((10.8179121, -7.138878847), (10.8179121, -7.676577902))
            Line((10.8179121, -7.676577902), (11.8179121, -7.676577902))
        make_face()
        with BuildLine():
            Line((11.8179121, -7.138878847), (11.8179121, -5.676577902))
            Line((11.8179121, -5.676577902), (10.8179121, -5.676577902))
            Line((10.8179121, -5.676577902), (10.8179121, -7.138878847))
            ThreePointArc((10.8179121, -7.138878847), (11.3179121, -7.201577902), (11.8179121, -7.138878847))
        make_face()
        with Locations((11.3179121, -5.176577902)):
            Rectangle(SKETCH1_4_W, SKETCH1_4_H)
        with BuildLine():
            Line((10.8179121, -4.676577902), (11.8179121, -4.676577902))
            Line((11.8179121, -4.676577902), (11.8179121, -3.214276957))
            ThreePointArc((11.8179121, -3.214276957), (11.3179121, -3.151577902), (10.8179121, -3.214276957))
            Line((10.8179121, -3.214276957), (10.8179121, -4.676577902))
        make_face()
        with BuildLine():
            Line((11.8179121, -4.676577902), (13.280213046, -4.676577902))
            ThreePointArc((13.280213046, -4.676577902), (12.749803332, -3.74468667), (11.8179121, -3.214276957))
            Line((11.8179121, -3.214276957), (11.8179121, -4.676577902))
        make_face()
        with BuildLine():
            ThreePointArc((10.8179121, -3.214276957), (11.3179121, -3.151577902), (11.8179121, -3.214276957))
            Line((11.8179121, -3.214276957), (11.8179121, -2.676577902))
            Line((11.8179121, -2.676577902), (10.8179121, -2.676577902))
            Line((10.8179121, -2.676577902), (10.8179121, -3.214276957))
        make_face()
        with BuildLine():
            Line((9.355611155, -4.676577902), (10.8179121, -4.676577902))
            Line((10.8179121, -4.676577902), (10.8179121, -3.214276957))
            ThreePointArc((10.8179121, -3.214276957), (9.886020869, -3.74468667), (9.355611155, -4.676577902))
        make_face()
        with BuildLine():
            Line((10.8179121, -5.676577902), (10.8179121, -4.676577902))
            Line((10.8179121, -4.676577902), (9.355611155, -4.676577902))
            ThreePointArc((9.355611155, -4.676577902), (9.2929121, -5.176577902), (9.355611155, -5.676577902))
            Line((9.355611155, -5.676577902), (10.8179121, -5.676577902))
        make_face()
        with BuildLine():
            Line((10.8179121, -7.138878847), (10.8179121, -5.676577902))
            Line((10.8179121, -5.676577902), (9.355611155, -5.676577902))
            ThreePointArc((9.355611155, -5.676577902), (9.886020869, -6.608469134), (10.8179121, -7.138878847))
        make_face()
        with BuildLine():
            Line((9.355611155, -4.676577902), (5.979806475, -4.676577902))
            ThreePointArc((5.979806475, -4.676577902), (6.027374194, -4.924569317), (6.043314802, -5.176577902))
            ThreePointArc((6.043314802, -5.176577902), (6.027374194, -5.428586487), (5.979806475, -5.676577902))
            Line((5.979806475, -5.676577902), (9.355611155, -5.676577902))
            ThreePointArc((9.355611155, -5.676577902), (9.2929121, -5.176577902), (9.355611155, -4.676577902))
        make_face()
        with BuildLine():
            Line((5.979806475, -4.676577902), (4.543314802, -4.676577902))
            Line((4.543314802, -4.676577902), (4.543314802, -5.676577902))
            Line((4.543314802, -5.676577902), (5.979806475, -5.676577902))
            ThreePointArc((5.979806475, -5.676577902), (6.027374194, -5.428586487), (6.043314802, -5.176577902))
            ThreePointArc((6.043314802, -5.176577902), (6.027374194, -4.924569317), (5.979806475, -4.676577902))
        make_face()
        with BuildLine():
            Line((4.543314802, -3.240086229), (4.543314802, -4.676577902))
            Line((4.543314802, -4.676577902), (5.979806475, -4.676577902))
            ThreePointArc((5.979806475, -4.676577902), (5.457528364, -3.762364339), (4.543314802, -3.240086229))
        make_face()
        with BuildLine():
            Line((3.543314802, -2.676577902), (3.543314802, -3.240086229))
            ThreePointArc((3.543314802, -3.240086229), (4.043314802, -3.176577902), (4.543314802, -3.240086229))
            Line((4.543314802, -3.240086229), (4.543314802, -2.676577902))
            Line((4.543314802, -2.676577902), (3.543314802, -2.676577902))
        make_face()
        with BuildLine():
            Line((3.543314802, -3.240086229), (3.543314802, -4.676577902))
            Line((3.543314802, -4.676577902), (4.543314802, -4.676577902))
            Line((4.543314802, -4.676577902), (4.543314802, -3.240086229))
            ThreePointArc((4.543314802, -3.240086229), (4.043314802, -3.176577902), (3.543314802, -3.240086229))
        make_face()
        with BuildLine():
            Line((4.543314802, -5.676577902), (3.543314802, -5.676577902))
            Line((3.543314802, -5.676577902), (3.543314802, -7.113069575))
            ThreePointArc((3.543314802, -7.113069575), (4.043314802, -7.176577902), (4.543314802, -7.113069575))
            Line((4.543314802, -7.113069575), (4.543314802, -5.676577902))
        make_face()
        with Locations((4.043314802, -5.176577902)):
            Rectangle(SKETCH1_4_W, SKETCH1_4_H)
        with BuildLine():
            Line((5.979806475, -5.676577902), (4.543314802, -5.676577902))
            Line((4.543314802, -5.676577902), (4.543314802, -7.113069575))
            ThreePointArc((4.543314802, -7.113069575), (5.457528364, -6.590791464), (5.979806475, -5.676577902))
        make_face()
        with BuildLine():
            ThreePointArc((4.543314802, -7.113069575), (4.043314802, -7.176577902), (3.543314802, -7.113069575))
            Line((3.543314802, -7.113069575), (3.543314802, -7.676577902))
            Line((3.543314802, -7.676577902), (4.543314802, -7.676577902))
            Line((4.543314802, -7.676577902), (4.543314802, -7.113069575))
        make_face()
        with BuildLine():
            Line((3.543314802, -5.676577902), (2.106823129, -5.676577902))
            ThreePointArc((2.106823129, -5.676577902), (2.62910124, -6.590791464), (3.543314802, -7.113069575))
            Line((3.543314802, -7.113069575), (3.543314802, -5.676577902))
        make_face()
        with BuildLine():
            Line((3.543314802, -4.676577902), (2.106823129, -4.676577902))
            ThreePointArc((2.106823129, -4.676577902), (2.043314802, -5.176577902), (2.106823129, -5.676577902))
            Line((2.106823129, -5.676577902), (3.543314802, -5.676577902))
            Line((3.543314802, -5.676577902), (3.543314802, -4.676577902))
        make_face()
        with BuildLine():
            ThreePointArc((3.543314802, -3.240086229), (2.62910124, -3.762364339), (2.106823129, -4.676577902))
            Line((2.106823129, -4.676577902), (3.543314802, -4.676577902))
            Line((3.543314802, -4.676577902), (3.543314802, -3.240086229))
        make_face()
        with BuildLine():
            Line((2.106823129, -4.676577902), (0, -4.676577902))
            Line((0, -4.676577902), (0, -5.676577902))
            Line((0, -5.676577902), (2.106823129, -5.676577902))
            ThreePointArc((2.106823129, -5.676577902), (2.043314802, -5.176577902), (2.106823129, -4.676577902))
        make_face()
    extrude(amount=-CUT_EXTRUDE1_DEPTH, mode=Mode.SUBTRACT)


solid = part.part
